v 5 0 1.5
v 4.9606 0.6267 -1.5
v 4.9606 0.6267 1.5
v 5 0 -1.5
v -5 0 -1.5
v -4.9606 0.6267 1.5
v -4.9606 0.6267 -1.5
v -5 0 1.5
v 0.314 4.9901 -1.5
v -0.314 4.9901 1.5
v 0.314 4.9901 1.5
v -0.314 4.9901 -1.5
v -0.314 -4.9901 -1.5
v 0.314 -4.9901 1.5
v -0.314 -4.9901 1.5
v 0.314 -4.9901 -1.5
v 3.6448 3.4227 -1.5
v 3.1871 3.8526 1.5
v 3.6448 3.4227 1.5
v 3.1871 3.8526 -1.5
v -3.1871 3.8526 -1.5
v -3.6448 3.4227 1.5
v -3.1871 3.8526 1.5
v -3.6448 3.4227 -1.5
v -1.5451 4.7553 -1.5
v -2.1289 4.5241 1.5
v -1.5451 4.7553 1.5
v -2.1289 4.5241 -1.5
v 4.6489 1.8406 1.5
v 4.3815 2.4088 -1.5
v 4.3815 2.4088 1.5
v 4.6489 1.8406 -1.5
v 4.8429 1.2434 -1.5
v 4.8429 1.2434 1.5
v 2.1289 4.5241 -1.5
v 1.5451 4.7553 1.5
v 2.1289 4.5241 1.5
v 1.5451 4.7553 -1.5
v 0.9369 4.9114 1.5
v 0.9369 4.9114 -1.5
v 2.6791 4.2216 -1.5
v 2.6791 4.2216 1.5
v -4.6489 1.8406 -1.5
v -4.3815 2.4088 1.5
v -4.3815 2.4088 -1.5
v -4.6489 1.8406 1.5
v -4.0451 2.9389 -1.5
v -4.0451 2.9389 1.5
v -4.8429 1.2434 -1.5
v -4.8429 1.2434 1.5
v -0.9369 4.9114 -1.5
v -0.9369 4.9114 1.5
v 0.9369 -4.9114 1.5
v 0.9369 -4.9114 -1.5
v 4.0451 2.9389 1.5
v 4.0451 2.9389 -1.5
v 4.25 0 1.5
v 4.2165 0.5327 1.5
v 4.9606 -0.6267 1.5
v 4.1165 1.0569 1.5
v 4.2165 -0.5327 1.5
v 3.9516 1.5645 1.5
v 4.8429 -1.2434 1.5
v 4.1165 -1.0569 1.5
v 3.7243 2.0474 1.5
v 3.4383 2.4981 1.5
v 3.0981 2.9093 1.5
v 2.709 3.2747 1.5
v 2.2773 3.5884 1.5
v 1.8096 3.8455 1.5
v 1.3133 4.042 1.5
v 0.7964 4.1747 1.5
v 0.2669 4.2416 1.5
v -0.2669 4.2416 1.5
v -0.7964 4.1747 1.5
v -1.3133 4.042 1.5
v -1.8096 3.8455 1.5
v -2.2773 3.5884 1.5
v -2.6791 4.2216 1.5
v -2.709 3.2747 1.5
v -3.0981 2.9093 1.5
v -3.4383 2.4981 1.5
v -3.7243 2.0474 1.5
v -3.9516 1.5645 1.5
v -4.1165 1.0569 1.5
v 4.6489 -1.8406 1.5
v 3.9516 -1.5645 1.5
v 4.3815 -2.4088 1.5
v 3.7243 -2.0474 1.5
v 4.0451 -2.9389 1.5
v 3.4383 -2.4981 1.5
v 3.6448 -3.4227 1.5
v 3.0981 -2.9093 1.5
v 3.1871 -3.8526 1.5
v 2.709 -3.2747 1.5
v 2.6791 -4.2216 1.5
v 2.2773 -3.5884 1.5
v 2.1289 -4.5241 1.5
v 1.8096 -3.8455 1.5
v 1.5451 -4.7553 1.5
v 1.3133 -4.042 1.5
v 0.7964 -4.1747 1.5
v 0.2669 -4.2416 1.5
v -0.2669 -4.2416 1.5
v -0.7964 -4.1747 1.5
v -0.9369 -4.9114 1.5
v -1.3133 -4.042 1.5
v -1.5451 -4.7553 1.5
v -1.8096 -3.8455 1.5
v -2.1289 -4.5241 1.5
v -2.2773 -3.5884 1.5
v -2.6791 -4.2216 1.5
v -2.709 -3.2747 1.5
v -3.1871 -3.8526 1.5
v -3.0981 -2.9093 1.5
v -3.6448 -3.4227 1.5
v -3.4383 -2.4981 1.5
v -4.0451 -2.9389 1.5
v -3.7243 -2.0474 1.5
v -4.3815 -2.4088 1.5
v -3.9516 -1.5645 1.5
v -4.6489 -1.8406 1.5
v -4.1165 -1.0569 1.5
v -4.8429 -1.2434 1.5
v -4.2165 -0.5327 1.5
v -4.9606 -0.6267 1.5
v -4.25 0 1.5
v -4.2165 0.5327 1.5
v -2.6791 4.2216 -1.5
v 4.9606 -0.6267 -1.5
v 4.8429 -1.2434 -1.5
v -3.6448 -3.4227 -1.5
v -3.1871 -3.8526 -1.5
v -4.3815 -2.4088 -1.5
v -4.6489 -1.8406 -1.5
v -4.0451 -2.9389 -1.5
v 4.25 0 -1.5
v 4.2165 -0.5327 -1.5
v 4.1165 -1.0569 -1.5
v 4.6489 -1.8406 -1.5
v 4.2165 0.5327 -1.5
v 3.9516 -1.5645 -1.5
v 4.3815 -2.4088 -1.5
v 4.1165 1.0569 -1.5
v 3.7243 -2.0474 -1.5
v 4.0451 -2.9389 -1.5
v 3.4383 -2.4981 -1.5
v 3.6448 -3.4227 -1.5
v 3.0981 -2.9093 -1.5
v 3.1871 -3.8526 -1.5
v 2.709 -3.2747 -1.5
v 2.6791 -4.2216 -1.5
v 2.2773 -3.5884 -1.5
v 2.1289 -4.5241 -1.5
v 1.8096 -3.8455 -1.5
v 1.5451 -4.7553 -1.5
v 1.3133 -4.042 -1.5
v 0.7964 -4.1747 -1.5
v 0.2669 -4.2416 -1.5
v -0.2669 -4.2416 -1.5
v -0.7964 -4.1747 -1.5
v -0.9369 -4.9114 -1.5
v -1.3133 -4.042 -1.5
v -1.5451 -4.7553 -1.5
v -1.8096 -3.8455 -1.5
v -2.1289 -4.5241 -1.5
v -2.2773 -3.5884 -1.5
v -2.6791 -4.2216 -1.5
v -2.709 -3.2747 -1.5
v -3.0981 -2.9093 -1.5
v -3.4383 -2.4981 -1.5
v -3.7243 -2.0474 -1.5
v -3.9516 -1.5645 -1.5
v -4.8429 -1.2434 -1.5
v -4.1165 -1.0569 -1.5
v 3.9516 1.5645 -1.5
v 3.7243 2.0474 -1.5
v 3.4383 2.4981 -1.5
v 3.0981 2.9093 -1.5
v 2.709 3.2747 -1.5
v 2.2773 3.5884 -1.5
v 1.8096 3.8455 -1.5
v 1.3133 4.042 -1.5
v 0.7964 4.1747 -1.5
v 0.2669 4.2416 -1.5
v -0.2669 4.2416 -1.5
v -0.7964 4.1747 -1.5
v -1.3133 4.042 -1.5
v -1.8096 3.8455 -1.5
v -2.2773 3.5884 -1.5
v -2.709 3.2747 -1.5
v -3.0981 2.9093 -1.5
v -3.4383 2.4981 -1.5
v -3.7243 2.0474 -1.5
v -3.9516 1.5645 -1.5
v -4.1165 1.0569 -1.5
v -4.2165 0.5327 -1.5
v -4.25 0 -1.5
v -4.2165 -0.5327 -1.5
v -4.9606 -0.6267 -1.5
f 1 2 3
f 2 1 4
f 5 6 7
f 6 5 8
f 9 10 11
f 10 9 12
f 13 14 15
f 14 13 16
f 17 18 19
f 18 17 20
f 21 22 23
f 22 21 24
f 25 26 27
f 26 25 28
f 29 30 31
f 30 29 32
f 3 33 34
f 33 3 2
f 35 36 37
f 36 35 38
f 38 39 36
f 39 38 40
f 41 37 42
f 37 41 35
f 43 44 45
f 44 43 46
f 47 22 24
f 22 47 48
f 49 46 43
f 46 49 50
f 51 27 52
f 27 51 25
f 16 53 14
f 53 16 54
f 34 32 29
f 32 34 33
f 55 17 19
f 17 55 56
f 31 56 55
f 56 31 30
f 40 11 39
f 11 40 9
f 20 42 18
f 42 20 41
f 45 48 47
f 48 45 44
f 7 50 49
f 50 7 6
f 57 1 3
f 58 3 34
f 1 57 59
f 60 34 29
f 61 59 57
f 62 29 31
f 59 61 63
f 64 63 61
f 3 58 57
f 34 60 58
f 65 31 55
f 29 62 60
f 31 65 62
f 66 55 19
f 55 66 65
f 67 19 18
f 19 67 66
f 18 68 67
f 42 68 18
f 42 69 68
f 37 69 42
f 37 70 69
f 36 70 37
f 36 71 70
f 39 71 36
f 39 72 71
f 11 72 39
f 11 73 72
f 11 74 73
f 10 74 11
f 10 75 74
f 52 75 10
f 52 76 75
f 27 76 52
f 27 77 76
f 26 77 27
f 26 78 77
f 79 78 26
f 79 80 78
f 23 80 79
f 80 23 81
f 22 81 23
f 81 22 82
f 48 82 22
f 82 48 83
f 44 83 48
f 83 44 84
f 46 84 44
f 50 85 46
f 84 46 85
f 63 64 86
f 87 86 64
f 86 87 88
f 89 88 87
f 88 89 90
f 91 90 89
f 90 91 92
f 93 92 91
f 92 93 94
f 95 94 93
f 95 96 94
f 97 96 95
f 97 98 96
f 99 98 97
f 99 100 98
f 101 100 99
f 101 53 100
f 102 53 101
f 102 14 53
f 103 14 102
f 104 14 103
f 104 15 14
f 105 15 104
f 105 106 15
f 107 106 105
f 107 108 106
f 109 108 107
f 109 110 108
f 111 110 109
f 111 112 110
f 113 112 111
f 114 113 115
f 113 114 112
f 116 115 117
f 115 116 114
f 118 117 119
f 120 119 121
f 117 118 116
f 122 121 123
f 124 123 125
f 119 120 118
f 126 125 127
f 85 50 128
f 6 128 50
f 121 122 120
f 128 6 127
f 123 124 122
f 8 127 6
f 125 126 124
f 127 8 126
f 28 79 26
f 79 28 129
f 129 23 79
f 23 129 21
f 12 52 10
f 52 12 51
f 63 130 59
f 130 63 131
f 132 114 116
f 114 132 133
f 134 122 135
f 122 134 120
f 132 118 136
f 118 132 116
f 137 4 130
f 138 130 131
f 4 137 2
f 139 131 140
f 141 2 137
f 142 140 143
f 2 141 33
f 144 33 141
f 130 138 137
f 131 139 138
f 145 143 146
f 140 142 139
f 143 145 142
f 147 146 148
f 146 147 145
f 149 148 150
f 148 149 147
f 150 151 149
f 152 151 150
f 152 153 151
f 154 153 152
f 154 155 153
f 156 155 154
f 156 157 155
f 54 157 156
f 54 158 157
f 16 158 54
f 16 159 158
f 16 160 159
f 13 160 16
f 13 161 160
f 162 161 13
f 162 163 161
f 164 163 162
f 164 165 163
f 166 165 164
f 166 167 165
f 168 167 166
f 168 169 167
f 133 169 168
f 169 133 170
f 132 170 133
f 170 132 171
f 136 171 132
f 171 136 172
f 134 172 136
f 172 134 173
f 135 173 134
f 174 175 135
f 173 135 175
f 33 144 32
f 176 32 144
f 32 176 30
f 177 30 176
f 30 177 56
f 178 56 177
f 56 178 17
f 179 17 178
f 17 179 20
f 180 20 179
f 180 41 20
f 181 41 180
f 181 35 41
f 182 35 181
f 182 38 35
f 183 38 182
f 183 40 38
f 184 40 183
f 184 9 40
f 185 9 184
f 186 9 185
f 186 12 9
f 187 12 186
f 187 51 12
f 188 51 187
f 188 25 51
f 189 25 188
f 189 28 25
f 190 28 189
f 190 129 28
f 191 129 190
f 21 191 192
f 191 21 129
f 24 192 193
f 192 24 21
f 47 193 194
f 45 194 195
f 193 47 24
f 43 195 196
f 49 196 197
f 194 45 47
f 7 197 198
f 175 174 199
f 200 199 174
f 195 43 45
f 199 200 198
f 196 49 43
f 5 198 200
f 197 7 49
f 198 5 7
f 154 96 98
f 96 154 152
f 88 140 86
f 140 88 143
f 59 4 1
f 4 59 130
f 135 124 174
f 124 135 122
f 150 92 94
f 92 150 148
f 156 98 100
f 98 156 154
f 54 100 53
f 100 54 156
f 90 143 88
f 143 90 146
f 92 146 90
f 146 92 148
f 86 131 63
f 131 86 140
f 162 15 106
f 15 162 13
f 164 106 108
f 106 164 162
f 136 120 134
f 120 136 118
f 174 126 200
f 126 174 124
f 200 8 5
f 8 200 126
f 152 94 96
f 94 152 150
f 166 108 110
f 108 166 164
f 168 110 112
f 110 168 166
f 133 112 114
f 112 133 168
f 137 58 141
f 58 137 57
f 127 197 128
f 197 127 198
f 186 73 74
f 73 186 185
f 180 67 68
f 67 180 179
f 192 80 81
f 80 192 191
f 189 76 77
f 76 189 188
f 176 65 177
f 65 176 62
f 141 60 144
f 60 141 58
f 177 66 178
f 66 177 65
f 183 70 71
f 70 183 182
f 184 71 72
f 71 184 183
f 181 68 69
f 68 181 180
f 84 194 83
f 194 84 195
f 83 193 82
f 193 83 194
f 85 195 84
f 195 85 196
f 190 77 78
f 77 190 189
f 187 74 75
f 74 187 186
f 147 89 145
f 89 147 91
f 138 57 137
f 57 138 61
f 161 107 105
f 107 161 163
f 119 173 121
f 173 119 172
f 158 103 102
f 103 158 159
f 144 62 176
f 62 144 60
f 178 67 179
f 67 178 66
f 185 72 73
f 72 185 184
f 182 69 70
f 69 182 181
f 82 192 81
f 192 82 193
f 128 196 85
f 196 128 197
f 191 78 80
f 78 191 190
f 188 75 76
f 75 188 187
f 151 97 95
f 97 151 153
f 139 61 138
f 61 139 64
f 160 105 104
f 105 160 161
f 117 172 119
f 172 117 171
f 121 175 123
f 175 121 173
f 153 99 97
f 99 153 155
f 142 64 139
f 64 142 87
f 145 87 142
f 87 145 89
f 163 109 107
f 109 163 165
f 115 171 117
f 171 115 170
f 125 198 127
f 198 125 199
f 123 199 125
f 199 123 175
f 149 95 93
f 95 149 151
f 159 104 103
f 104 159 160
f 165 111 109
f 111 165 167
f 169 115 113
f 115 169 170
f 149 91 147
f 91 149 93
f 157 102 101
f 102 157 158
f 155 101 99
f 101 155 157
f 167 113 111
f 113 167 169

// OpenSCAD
$fn = 50;


difference() {
	union() {
		translate(v = [0, 0, -1.5000000000]) {
			cylinder(h = 3, r = 5.0000000000);
		}
	}
	union() {
		translate(v = [0, 0, -100.0000000000]) {
			cylinder(h = 200, r = 4.2500000000);
		}
	}
}
